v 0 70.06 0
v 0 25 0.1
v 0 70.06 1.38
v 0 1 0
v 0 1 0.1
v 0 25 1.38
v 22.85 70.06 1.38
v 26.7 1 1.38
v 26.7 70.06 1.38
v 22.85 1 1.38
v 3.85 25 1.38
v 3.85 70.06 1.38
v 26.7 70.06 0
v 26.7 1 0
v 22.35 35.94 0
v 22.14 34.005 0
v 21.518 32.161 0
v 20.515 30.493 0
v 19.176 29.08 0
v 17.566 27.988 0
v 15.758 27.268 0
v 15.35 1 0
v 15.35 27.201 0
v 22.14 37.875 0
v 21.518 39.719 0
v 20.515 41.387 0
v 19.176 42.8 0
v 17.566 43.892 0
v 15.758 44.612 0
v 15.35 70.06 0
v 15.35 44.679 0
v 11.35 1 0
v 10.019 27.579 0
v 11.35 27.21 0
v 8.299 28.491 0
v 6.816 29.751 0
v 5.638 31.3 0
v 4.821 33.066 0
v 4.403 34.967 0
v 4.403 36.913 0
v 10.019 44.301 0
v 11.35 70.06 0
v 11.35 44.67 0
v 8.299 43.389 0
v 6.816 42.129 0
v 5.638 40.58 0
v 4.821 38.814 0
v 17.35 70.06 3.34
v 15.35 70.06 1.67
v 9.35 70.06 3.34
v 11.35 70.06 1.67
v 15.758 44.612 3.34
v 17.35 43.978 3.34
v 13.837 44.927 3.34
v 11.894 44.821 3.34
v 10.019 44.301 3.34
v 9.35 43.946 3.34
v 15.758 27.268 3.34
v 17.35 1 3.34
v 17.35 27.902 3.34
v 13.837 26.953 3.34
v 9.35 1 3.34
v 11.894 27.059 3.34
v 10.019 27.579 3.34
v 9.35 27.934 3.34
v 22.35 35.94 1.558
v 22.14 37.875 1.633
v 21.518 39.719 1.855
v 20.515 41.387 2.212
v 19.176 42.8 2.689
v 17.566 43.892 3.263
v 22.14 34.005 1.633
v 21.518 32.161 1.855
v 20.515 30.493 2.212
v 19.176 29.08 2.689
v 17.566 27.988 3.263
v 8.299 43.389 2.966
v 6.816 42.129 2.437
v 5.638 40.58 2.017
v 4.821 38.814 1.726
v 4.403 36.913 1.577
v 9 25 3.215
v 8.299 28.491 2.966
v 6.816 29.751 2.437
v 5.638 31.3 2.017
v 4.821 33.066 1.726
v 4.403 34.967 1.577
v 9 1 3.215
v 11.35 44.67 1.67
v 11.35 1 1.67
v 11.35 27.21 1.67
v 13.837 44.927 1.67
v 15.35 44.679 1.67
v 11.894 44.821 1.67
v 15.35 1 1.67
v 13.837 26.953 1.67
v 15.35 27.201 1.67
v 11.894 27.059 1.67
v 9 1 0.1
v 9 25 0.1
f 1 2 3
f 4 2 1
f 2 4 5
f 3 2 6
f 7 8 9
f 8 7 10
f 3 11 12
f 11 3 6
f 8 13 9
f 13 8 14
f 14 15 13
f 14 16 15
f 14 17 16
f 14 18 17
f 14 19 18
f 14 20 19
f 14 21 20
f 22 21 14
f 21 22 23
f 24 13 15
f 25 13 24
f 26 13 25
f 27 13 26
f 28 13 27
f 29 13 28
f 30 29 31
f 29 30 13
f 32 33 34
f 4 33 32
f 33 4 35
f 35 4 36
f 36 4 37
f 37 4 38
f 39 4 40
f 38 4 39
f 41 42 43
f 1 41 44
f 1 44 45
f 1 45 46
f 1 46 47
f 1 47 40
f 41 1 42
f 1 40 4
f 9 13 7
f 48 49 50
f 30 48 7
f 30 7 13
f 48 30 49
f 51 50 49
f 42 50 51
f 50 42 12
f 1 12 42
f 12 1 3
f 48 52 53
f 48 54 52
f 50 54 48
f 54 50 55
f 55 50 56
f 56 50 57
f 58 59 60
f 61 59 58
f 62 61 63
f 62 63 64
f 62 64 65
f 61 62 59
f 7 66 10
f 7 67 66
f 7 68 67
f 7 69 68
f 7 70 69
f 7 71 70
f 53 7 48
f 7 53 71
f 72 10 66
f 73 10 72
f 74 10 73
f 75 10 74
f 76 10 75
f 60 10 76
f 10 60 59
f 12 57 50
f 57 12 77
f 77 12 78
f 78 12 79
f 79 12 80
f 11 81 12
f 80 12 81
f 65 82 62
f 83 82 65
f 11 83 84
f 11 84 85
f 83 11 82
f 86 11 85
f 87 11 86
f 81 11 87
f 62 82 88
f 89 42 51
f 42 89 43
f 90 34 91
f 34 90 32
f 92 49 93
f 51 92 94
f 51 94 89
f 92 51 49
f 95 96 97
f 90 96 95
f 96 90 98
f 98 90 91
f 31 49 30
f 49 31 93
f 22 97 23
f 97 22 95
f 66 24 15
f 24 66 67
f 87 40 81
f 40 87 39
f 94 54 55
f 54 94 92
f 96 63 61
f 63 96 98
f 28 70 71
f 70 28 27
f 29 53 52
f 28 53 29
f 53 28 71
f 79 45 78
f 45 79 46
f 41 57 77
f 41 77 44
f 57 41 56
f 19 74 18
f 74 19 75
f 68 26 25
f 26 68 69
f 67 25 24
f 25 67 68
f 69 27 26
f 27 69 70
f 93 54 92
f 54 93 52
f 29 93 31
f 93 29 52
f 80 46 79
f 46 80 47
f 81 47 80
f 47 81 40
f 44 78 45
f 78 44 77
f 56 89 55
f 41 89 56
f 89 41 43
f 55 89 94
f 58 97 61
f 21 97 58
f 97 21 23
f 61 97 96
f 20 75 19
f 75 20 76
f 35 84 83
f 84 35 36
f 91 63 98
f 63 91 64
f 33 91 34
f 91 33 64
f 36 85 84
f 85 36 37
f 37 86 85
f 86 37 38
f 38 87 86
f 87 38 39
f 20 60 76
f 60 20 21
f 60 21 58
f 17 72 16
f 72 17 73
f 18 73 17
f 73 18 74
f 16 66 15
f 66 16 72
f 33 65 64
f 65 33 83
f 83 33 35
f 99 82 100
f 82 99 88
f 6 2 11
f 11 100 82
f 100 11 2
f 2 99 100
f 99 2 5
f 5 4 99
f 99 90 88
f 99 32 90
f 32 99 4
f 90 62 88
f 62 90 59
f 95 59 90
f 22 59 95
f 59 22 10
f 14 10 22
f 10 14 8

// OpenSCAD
/* Diffuser Lense For A Particular Project (OpenSCAD) */
tol = 0.5;

/* LED PCB */
ledpcbw = 26.7;
ledpcbh = 71.88;
ledpcb_thickness = 3.47;
ledpcb_header_pos = 25;
ledpcb_header_w = 9;
holedia = 16 + 2;

/* Diffuser */
diffuserw=ledpcbw;
diffuserh=ledpcbh-1.82;
thickness=ledpcb_thickness-1.59 - tol;

/* Enclosure hole */
enclosurew = 19;

/* SMD LED */
ledh = 2.76-1.59 + tol;
ledw = 4;

difference()
{
  union()
  {
    // Cutout area to allow for raftless printing
    cube([ledpcb_header_w,ledpcb_header_pos, 0.1]);
    
    // Main object
    difference()
    {
      union()
      { // Main Body
        cube([diffuserw,diffuserh,thickness]);
        hull()
        {
          translate([(diffuserw - enclosurew)/2,0,0])
            cube([enclosurew,diffuserh,thickness]);
          translate([ledpcbw/2 - ledw,0,ledh])
            cube([ledw*2,diffuserh,ledh]);
        }
      }

      // LED Holes
      translate([ledpcbw/2 - ledw/2,0,0])
        cube([ledw,ledpcbh,ledh]);

      // Camera Hole
      translate([ledpcbw/2,ledpcbh/2,-thickness/2])
        cylinder(thickness*3,d=holedia);

      // Header Hole
      translate([0,0,-thickness/2])
        cube([ledpcb_header_w,ledpcb_header_pos,thickness*3]);
    }
  }
  
  /* Trimming */
  translate([0,0,-thickness])
    cube([diffuserw,1,thickness*4]);
}
